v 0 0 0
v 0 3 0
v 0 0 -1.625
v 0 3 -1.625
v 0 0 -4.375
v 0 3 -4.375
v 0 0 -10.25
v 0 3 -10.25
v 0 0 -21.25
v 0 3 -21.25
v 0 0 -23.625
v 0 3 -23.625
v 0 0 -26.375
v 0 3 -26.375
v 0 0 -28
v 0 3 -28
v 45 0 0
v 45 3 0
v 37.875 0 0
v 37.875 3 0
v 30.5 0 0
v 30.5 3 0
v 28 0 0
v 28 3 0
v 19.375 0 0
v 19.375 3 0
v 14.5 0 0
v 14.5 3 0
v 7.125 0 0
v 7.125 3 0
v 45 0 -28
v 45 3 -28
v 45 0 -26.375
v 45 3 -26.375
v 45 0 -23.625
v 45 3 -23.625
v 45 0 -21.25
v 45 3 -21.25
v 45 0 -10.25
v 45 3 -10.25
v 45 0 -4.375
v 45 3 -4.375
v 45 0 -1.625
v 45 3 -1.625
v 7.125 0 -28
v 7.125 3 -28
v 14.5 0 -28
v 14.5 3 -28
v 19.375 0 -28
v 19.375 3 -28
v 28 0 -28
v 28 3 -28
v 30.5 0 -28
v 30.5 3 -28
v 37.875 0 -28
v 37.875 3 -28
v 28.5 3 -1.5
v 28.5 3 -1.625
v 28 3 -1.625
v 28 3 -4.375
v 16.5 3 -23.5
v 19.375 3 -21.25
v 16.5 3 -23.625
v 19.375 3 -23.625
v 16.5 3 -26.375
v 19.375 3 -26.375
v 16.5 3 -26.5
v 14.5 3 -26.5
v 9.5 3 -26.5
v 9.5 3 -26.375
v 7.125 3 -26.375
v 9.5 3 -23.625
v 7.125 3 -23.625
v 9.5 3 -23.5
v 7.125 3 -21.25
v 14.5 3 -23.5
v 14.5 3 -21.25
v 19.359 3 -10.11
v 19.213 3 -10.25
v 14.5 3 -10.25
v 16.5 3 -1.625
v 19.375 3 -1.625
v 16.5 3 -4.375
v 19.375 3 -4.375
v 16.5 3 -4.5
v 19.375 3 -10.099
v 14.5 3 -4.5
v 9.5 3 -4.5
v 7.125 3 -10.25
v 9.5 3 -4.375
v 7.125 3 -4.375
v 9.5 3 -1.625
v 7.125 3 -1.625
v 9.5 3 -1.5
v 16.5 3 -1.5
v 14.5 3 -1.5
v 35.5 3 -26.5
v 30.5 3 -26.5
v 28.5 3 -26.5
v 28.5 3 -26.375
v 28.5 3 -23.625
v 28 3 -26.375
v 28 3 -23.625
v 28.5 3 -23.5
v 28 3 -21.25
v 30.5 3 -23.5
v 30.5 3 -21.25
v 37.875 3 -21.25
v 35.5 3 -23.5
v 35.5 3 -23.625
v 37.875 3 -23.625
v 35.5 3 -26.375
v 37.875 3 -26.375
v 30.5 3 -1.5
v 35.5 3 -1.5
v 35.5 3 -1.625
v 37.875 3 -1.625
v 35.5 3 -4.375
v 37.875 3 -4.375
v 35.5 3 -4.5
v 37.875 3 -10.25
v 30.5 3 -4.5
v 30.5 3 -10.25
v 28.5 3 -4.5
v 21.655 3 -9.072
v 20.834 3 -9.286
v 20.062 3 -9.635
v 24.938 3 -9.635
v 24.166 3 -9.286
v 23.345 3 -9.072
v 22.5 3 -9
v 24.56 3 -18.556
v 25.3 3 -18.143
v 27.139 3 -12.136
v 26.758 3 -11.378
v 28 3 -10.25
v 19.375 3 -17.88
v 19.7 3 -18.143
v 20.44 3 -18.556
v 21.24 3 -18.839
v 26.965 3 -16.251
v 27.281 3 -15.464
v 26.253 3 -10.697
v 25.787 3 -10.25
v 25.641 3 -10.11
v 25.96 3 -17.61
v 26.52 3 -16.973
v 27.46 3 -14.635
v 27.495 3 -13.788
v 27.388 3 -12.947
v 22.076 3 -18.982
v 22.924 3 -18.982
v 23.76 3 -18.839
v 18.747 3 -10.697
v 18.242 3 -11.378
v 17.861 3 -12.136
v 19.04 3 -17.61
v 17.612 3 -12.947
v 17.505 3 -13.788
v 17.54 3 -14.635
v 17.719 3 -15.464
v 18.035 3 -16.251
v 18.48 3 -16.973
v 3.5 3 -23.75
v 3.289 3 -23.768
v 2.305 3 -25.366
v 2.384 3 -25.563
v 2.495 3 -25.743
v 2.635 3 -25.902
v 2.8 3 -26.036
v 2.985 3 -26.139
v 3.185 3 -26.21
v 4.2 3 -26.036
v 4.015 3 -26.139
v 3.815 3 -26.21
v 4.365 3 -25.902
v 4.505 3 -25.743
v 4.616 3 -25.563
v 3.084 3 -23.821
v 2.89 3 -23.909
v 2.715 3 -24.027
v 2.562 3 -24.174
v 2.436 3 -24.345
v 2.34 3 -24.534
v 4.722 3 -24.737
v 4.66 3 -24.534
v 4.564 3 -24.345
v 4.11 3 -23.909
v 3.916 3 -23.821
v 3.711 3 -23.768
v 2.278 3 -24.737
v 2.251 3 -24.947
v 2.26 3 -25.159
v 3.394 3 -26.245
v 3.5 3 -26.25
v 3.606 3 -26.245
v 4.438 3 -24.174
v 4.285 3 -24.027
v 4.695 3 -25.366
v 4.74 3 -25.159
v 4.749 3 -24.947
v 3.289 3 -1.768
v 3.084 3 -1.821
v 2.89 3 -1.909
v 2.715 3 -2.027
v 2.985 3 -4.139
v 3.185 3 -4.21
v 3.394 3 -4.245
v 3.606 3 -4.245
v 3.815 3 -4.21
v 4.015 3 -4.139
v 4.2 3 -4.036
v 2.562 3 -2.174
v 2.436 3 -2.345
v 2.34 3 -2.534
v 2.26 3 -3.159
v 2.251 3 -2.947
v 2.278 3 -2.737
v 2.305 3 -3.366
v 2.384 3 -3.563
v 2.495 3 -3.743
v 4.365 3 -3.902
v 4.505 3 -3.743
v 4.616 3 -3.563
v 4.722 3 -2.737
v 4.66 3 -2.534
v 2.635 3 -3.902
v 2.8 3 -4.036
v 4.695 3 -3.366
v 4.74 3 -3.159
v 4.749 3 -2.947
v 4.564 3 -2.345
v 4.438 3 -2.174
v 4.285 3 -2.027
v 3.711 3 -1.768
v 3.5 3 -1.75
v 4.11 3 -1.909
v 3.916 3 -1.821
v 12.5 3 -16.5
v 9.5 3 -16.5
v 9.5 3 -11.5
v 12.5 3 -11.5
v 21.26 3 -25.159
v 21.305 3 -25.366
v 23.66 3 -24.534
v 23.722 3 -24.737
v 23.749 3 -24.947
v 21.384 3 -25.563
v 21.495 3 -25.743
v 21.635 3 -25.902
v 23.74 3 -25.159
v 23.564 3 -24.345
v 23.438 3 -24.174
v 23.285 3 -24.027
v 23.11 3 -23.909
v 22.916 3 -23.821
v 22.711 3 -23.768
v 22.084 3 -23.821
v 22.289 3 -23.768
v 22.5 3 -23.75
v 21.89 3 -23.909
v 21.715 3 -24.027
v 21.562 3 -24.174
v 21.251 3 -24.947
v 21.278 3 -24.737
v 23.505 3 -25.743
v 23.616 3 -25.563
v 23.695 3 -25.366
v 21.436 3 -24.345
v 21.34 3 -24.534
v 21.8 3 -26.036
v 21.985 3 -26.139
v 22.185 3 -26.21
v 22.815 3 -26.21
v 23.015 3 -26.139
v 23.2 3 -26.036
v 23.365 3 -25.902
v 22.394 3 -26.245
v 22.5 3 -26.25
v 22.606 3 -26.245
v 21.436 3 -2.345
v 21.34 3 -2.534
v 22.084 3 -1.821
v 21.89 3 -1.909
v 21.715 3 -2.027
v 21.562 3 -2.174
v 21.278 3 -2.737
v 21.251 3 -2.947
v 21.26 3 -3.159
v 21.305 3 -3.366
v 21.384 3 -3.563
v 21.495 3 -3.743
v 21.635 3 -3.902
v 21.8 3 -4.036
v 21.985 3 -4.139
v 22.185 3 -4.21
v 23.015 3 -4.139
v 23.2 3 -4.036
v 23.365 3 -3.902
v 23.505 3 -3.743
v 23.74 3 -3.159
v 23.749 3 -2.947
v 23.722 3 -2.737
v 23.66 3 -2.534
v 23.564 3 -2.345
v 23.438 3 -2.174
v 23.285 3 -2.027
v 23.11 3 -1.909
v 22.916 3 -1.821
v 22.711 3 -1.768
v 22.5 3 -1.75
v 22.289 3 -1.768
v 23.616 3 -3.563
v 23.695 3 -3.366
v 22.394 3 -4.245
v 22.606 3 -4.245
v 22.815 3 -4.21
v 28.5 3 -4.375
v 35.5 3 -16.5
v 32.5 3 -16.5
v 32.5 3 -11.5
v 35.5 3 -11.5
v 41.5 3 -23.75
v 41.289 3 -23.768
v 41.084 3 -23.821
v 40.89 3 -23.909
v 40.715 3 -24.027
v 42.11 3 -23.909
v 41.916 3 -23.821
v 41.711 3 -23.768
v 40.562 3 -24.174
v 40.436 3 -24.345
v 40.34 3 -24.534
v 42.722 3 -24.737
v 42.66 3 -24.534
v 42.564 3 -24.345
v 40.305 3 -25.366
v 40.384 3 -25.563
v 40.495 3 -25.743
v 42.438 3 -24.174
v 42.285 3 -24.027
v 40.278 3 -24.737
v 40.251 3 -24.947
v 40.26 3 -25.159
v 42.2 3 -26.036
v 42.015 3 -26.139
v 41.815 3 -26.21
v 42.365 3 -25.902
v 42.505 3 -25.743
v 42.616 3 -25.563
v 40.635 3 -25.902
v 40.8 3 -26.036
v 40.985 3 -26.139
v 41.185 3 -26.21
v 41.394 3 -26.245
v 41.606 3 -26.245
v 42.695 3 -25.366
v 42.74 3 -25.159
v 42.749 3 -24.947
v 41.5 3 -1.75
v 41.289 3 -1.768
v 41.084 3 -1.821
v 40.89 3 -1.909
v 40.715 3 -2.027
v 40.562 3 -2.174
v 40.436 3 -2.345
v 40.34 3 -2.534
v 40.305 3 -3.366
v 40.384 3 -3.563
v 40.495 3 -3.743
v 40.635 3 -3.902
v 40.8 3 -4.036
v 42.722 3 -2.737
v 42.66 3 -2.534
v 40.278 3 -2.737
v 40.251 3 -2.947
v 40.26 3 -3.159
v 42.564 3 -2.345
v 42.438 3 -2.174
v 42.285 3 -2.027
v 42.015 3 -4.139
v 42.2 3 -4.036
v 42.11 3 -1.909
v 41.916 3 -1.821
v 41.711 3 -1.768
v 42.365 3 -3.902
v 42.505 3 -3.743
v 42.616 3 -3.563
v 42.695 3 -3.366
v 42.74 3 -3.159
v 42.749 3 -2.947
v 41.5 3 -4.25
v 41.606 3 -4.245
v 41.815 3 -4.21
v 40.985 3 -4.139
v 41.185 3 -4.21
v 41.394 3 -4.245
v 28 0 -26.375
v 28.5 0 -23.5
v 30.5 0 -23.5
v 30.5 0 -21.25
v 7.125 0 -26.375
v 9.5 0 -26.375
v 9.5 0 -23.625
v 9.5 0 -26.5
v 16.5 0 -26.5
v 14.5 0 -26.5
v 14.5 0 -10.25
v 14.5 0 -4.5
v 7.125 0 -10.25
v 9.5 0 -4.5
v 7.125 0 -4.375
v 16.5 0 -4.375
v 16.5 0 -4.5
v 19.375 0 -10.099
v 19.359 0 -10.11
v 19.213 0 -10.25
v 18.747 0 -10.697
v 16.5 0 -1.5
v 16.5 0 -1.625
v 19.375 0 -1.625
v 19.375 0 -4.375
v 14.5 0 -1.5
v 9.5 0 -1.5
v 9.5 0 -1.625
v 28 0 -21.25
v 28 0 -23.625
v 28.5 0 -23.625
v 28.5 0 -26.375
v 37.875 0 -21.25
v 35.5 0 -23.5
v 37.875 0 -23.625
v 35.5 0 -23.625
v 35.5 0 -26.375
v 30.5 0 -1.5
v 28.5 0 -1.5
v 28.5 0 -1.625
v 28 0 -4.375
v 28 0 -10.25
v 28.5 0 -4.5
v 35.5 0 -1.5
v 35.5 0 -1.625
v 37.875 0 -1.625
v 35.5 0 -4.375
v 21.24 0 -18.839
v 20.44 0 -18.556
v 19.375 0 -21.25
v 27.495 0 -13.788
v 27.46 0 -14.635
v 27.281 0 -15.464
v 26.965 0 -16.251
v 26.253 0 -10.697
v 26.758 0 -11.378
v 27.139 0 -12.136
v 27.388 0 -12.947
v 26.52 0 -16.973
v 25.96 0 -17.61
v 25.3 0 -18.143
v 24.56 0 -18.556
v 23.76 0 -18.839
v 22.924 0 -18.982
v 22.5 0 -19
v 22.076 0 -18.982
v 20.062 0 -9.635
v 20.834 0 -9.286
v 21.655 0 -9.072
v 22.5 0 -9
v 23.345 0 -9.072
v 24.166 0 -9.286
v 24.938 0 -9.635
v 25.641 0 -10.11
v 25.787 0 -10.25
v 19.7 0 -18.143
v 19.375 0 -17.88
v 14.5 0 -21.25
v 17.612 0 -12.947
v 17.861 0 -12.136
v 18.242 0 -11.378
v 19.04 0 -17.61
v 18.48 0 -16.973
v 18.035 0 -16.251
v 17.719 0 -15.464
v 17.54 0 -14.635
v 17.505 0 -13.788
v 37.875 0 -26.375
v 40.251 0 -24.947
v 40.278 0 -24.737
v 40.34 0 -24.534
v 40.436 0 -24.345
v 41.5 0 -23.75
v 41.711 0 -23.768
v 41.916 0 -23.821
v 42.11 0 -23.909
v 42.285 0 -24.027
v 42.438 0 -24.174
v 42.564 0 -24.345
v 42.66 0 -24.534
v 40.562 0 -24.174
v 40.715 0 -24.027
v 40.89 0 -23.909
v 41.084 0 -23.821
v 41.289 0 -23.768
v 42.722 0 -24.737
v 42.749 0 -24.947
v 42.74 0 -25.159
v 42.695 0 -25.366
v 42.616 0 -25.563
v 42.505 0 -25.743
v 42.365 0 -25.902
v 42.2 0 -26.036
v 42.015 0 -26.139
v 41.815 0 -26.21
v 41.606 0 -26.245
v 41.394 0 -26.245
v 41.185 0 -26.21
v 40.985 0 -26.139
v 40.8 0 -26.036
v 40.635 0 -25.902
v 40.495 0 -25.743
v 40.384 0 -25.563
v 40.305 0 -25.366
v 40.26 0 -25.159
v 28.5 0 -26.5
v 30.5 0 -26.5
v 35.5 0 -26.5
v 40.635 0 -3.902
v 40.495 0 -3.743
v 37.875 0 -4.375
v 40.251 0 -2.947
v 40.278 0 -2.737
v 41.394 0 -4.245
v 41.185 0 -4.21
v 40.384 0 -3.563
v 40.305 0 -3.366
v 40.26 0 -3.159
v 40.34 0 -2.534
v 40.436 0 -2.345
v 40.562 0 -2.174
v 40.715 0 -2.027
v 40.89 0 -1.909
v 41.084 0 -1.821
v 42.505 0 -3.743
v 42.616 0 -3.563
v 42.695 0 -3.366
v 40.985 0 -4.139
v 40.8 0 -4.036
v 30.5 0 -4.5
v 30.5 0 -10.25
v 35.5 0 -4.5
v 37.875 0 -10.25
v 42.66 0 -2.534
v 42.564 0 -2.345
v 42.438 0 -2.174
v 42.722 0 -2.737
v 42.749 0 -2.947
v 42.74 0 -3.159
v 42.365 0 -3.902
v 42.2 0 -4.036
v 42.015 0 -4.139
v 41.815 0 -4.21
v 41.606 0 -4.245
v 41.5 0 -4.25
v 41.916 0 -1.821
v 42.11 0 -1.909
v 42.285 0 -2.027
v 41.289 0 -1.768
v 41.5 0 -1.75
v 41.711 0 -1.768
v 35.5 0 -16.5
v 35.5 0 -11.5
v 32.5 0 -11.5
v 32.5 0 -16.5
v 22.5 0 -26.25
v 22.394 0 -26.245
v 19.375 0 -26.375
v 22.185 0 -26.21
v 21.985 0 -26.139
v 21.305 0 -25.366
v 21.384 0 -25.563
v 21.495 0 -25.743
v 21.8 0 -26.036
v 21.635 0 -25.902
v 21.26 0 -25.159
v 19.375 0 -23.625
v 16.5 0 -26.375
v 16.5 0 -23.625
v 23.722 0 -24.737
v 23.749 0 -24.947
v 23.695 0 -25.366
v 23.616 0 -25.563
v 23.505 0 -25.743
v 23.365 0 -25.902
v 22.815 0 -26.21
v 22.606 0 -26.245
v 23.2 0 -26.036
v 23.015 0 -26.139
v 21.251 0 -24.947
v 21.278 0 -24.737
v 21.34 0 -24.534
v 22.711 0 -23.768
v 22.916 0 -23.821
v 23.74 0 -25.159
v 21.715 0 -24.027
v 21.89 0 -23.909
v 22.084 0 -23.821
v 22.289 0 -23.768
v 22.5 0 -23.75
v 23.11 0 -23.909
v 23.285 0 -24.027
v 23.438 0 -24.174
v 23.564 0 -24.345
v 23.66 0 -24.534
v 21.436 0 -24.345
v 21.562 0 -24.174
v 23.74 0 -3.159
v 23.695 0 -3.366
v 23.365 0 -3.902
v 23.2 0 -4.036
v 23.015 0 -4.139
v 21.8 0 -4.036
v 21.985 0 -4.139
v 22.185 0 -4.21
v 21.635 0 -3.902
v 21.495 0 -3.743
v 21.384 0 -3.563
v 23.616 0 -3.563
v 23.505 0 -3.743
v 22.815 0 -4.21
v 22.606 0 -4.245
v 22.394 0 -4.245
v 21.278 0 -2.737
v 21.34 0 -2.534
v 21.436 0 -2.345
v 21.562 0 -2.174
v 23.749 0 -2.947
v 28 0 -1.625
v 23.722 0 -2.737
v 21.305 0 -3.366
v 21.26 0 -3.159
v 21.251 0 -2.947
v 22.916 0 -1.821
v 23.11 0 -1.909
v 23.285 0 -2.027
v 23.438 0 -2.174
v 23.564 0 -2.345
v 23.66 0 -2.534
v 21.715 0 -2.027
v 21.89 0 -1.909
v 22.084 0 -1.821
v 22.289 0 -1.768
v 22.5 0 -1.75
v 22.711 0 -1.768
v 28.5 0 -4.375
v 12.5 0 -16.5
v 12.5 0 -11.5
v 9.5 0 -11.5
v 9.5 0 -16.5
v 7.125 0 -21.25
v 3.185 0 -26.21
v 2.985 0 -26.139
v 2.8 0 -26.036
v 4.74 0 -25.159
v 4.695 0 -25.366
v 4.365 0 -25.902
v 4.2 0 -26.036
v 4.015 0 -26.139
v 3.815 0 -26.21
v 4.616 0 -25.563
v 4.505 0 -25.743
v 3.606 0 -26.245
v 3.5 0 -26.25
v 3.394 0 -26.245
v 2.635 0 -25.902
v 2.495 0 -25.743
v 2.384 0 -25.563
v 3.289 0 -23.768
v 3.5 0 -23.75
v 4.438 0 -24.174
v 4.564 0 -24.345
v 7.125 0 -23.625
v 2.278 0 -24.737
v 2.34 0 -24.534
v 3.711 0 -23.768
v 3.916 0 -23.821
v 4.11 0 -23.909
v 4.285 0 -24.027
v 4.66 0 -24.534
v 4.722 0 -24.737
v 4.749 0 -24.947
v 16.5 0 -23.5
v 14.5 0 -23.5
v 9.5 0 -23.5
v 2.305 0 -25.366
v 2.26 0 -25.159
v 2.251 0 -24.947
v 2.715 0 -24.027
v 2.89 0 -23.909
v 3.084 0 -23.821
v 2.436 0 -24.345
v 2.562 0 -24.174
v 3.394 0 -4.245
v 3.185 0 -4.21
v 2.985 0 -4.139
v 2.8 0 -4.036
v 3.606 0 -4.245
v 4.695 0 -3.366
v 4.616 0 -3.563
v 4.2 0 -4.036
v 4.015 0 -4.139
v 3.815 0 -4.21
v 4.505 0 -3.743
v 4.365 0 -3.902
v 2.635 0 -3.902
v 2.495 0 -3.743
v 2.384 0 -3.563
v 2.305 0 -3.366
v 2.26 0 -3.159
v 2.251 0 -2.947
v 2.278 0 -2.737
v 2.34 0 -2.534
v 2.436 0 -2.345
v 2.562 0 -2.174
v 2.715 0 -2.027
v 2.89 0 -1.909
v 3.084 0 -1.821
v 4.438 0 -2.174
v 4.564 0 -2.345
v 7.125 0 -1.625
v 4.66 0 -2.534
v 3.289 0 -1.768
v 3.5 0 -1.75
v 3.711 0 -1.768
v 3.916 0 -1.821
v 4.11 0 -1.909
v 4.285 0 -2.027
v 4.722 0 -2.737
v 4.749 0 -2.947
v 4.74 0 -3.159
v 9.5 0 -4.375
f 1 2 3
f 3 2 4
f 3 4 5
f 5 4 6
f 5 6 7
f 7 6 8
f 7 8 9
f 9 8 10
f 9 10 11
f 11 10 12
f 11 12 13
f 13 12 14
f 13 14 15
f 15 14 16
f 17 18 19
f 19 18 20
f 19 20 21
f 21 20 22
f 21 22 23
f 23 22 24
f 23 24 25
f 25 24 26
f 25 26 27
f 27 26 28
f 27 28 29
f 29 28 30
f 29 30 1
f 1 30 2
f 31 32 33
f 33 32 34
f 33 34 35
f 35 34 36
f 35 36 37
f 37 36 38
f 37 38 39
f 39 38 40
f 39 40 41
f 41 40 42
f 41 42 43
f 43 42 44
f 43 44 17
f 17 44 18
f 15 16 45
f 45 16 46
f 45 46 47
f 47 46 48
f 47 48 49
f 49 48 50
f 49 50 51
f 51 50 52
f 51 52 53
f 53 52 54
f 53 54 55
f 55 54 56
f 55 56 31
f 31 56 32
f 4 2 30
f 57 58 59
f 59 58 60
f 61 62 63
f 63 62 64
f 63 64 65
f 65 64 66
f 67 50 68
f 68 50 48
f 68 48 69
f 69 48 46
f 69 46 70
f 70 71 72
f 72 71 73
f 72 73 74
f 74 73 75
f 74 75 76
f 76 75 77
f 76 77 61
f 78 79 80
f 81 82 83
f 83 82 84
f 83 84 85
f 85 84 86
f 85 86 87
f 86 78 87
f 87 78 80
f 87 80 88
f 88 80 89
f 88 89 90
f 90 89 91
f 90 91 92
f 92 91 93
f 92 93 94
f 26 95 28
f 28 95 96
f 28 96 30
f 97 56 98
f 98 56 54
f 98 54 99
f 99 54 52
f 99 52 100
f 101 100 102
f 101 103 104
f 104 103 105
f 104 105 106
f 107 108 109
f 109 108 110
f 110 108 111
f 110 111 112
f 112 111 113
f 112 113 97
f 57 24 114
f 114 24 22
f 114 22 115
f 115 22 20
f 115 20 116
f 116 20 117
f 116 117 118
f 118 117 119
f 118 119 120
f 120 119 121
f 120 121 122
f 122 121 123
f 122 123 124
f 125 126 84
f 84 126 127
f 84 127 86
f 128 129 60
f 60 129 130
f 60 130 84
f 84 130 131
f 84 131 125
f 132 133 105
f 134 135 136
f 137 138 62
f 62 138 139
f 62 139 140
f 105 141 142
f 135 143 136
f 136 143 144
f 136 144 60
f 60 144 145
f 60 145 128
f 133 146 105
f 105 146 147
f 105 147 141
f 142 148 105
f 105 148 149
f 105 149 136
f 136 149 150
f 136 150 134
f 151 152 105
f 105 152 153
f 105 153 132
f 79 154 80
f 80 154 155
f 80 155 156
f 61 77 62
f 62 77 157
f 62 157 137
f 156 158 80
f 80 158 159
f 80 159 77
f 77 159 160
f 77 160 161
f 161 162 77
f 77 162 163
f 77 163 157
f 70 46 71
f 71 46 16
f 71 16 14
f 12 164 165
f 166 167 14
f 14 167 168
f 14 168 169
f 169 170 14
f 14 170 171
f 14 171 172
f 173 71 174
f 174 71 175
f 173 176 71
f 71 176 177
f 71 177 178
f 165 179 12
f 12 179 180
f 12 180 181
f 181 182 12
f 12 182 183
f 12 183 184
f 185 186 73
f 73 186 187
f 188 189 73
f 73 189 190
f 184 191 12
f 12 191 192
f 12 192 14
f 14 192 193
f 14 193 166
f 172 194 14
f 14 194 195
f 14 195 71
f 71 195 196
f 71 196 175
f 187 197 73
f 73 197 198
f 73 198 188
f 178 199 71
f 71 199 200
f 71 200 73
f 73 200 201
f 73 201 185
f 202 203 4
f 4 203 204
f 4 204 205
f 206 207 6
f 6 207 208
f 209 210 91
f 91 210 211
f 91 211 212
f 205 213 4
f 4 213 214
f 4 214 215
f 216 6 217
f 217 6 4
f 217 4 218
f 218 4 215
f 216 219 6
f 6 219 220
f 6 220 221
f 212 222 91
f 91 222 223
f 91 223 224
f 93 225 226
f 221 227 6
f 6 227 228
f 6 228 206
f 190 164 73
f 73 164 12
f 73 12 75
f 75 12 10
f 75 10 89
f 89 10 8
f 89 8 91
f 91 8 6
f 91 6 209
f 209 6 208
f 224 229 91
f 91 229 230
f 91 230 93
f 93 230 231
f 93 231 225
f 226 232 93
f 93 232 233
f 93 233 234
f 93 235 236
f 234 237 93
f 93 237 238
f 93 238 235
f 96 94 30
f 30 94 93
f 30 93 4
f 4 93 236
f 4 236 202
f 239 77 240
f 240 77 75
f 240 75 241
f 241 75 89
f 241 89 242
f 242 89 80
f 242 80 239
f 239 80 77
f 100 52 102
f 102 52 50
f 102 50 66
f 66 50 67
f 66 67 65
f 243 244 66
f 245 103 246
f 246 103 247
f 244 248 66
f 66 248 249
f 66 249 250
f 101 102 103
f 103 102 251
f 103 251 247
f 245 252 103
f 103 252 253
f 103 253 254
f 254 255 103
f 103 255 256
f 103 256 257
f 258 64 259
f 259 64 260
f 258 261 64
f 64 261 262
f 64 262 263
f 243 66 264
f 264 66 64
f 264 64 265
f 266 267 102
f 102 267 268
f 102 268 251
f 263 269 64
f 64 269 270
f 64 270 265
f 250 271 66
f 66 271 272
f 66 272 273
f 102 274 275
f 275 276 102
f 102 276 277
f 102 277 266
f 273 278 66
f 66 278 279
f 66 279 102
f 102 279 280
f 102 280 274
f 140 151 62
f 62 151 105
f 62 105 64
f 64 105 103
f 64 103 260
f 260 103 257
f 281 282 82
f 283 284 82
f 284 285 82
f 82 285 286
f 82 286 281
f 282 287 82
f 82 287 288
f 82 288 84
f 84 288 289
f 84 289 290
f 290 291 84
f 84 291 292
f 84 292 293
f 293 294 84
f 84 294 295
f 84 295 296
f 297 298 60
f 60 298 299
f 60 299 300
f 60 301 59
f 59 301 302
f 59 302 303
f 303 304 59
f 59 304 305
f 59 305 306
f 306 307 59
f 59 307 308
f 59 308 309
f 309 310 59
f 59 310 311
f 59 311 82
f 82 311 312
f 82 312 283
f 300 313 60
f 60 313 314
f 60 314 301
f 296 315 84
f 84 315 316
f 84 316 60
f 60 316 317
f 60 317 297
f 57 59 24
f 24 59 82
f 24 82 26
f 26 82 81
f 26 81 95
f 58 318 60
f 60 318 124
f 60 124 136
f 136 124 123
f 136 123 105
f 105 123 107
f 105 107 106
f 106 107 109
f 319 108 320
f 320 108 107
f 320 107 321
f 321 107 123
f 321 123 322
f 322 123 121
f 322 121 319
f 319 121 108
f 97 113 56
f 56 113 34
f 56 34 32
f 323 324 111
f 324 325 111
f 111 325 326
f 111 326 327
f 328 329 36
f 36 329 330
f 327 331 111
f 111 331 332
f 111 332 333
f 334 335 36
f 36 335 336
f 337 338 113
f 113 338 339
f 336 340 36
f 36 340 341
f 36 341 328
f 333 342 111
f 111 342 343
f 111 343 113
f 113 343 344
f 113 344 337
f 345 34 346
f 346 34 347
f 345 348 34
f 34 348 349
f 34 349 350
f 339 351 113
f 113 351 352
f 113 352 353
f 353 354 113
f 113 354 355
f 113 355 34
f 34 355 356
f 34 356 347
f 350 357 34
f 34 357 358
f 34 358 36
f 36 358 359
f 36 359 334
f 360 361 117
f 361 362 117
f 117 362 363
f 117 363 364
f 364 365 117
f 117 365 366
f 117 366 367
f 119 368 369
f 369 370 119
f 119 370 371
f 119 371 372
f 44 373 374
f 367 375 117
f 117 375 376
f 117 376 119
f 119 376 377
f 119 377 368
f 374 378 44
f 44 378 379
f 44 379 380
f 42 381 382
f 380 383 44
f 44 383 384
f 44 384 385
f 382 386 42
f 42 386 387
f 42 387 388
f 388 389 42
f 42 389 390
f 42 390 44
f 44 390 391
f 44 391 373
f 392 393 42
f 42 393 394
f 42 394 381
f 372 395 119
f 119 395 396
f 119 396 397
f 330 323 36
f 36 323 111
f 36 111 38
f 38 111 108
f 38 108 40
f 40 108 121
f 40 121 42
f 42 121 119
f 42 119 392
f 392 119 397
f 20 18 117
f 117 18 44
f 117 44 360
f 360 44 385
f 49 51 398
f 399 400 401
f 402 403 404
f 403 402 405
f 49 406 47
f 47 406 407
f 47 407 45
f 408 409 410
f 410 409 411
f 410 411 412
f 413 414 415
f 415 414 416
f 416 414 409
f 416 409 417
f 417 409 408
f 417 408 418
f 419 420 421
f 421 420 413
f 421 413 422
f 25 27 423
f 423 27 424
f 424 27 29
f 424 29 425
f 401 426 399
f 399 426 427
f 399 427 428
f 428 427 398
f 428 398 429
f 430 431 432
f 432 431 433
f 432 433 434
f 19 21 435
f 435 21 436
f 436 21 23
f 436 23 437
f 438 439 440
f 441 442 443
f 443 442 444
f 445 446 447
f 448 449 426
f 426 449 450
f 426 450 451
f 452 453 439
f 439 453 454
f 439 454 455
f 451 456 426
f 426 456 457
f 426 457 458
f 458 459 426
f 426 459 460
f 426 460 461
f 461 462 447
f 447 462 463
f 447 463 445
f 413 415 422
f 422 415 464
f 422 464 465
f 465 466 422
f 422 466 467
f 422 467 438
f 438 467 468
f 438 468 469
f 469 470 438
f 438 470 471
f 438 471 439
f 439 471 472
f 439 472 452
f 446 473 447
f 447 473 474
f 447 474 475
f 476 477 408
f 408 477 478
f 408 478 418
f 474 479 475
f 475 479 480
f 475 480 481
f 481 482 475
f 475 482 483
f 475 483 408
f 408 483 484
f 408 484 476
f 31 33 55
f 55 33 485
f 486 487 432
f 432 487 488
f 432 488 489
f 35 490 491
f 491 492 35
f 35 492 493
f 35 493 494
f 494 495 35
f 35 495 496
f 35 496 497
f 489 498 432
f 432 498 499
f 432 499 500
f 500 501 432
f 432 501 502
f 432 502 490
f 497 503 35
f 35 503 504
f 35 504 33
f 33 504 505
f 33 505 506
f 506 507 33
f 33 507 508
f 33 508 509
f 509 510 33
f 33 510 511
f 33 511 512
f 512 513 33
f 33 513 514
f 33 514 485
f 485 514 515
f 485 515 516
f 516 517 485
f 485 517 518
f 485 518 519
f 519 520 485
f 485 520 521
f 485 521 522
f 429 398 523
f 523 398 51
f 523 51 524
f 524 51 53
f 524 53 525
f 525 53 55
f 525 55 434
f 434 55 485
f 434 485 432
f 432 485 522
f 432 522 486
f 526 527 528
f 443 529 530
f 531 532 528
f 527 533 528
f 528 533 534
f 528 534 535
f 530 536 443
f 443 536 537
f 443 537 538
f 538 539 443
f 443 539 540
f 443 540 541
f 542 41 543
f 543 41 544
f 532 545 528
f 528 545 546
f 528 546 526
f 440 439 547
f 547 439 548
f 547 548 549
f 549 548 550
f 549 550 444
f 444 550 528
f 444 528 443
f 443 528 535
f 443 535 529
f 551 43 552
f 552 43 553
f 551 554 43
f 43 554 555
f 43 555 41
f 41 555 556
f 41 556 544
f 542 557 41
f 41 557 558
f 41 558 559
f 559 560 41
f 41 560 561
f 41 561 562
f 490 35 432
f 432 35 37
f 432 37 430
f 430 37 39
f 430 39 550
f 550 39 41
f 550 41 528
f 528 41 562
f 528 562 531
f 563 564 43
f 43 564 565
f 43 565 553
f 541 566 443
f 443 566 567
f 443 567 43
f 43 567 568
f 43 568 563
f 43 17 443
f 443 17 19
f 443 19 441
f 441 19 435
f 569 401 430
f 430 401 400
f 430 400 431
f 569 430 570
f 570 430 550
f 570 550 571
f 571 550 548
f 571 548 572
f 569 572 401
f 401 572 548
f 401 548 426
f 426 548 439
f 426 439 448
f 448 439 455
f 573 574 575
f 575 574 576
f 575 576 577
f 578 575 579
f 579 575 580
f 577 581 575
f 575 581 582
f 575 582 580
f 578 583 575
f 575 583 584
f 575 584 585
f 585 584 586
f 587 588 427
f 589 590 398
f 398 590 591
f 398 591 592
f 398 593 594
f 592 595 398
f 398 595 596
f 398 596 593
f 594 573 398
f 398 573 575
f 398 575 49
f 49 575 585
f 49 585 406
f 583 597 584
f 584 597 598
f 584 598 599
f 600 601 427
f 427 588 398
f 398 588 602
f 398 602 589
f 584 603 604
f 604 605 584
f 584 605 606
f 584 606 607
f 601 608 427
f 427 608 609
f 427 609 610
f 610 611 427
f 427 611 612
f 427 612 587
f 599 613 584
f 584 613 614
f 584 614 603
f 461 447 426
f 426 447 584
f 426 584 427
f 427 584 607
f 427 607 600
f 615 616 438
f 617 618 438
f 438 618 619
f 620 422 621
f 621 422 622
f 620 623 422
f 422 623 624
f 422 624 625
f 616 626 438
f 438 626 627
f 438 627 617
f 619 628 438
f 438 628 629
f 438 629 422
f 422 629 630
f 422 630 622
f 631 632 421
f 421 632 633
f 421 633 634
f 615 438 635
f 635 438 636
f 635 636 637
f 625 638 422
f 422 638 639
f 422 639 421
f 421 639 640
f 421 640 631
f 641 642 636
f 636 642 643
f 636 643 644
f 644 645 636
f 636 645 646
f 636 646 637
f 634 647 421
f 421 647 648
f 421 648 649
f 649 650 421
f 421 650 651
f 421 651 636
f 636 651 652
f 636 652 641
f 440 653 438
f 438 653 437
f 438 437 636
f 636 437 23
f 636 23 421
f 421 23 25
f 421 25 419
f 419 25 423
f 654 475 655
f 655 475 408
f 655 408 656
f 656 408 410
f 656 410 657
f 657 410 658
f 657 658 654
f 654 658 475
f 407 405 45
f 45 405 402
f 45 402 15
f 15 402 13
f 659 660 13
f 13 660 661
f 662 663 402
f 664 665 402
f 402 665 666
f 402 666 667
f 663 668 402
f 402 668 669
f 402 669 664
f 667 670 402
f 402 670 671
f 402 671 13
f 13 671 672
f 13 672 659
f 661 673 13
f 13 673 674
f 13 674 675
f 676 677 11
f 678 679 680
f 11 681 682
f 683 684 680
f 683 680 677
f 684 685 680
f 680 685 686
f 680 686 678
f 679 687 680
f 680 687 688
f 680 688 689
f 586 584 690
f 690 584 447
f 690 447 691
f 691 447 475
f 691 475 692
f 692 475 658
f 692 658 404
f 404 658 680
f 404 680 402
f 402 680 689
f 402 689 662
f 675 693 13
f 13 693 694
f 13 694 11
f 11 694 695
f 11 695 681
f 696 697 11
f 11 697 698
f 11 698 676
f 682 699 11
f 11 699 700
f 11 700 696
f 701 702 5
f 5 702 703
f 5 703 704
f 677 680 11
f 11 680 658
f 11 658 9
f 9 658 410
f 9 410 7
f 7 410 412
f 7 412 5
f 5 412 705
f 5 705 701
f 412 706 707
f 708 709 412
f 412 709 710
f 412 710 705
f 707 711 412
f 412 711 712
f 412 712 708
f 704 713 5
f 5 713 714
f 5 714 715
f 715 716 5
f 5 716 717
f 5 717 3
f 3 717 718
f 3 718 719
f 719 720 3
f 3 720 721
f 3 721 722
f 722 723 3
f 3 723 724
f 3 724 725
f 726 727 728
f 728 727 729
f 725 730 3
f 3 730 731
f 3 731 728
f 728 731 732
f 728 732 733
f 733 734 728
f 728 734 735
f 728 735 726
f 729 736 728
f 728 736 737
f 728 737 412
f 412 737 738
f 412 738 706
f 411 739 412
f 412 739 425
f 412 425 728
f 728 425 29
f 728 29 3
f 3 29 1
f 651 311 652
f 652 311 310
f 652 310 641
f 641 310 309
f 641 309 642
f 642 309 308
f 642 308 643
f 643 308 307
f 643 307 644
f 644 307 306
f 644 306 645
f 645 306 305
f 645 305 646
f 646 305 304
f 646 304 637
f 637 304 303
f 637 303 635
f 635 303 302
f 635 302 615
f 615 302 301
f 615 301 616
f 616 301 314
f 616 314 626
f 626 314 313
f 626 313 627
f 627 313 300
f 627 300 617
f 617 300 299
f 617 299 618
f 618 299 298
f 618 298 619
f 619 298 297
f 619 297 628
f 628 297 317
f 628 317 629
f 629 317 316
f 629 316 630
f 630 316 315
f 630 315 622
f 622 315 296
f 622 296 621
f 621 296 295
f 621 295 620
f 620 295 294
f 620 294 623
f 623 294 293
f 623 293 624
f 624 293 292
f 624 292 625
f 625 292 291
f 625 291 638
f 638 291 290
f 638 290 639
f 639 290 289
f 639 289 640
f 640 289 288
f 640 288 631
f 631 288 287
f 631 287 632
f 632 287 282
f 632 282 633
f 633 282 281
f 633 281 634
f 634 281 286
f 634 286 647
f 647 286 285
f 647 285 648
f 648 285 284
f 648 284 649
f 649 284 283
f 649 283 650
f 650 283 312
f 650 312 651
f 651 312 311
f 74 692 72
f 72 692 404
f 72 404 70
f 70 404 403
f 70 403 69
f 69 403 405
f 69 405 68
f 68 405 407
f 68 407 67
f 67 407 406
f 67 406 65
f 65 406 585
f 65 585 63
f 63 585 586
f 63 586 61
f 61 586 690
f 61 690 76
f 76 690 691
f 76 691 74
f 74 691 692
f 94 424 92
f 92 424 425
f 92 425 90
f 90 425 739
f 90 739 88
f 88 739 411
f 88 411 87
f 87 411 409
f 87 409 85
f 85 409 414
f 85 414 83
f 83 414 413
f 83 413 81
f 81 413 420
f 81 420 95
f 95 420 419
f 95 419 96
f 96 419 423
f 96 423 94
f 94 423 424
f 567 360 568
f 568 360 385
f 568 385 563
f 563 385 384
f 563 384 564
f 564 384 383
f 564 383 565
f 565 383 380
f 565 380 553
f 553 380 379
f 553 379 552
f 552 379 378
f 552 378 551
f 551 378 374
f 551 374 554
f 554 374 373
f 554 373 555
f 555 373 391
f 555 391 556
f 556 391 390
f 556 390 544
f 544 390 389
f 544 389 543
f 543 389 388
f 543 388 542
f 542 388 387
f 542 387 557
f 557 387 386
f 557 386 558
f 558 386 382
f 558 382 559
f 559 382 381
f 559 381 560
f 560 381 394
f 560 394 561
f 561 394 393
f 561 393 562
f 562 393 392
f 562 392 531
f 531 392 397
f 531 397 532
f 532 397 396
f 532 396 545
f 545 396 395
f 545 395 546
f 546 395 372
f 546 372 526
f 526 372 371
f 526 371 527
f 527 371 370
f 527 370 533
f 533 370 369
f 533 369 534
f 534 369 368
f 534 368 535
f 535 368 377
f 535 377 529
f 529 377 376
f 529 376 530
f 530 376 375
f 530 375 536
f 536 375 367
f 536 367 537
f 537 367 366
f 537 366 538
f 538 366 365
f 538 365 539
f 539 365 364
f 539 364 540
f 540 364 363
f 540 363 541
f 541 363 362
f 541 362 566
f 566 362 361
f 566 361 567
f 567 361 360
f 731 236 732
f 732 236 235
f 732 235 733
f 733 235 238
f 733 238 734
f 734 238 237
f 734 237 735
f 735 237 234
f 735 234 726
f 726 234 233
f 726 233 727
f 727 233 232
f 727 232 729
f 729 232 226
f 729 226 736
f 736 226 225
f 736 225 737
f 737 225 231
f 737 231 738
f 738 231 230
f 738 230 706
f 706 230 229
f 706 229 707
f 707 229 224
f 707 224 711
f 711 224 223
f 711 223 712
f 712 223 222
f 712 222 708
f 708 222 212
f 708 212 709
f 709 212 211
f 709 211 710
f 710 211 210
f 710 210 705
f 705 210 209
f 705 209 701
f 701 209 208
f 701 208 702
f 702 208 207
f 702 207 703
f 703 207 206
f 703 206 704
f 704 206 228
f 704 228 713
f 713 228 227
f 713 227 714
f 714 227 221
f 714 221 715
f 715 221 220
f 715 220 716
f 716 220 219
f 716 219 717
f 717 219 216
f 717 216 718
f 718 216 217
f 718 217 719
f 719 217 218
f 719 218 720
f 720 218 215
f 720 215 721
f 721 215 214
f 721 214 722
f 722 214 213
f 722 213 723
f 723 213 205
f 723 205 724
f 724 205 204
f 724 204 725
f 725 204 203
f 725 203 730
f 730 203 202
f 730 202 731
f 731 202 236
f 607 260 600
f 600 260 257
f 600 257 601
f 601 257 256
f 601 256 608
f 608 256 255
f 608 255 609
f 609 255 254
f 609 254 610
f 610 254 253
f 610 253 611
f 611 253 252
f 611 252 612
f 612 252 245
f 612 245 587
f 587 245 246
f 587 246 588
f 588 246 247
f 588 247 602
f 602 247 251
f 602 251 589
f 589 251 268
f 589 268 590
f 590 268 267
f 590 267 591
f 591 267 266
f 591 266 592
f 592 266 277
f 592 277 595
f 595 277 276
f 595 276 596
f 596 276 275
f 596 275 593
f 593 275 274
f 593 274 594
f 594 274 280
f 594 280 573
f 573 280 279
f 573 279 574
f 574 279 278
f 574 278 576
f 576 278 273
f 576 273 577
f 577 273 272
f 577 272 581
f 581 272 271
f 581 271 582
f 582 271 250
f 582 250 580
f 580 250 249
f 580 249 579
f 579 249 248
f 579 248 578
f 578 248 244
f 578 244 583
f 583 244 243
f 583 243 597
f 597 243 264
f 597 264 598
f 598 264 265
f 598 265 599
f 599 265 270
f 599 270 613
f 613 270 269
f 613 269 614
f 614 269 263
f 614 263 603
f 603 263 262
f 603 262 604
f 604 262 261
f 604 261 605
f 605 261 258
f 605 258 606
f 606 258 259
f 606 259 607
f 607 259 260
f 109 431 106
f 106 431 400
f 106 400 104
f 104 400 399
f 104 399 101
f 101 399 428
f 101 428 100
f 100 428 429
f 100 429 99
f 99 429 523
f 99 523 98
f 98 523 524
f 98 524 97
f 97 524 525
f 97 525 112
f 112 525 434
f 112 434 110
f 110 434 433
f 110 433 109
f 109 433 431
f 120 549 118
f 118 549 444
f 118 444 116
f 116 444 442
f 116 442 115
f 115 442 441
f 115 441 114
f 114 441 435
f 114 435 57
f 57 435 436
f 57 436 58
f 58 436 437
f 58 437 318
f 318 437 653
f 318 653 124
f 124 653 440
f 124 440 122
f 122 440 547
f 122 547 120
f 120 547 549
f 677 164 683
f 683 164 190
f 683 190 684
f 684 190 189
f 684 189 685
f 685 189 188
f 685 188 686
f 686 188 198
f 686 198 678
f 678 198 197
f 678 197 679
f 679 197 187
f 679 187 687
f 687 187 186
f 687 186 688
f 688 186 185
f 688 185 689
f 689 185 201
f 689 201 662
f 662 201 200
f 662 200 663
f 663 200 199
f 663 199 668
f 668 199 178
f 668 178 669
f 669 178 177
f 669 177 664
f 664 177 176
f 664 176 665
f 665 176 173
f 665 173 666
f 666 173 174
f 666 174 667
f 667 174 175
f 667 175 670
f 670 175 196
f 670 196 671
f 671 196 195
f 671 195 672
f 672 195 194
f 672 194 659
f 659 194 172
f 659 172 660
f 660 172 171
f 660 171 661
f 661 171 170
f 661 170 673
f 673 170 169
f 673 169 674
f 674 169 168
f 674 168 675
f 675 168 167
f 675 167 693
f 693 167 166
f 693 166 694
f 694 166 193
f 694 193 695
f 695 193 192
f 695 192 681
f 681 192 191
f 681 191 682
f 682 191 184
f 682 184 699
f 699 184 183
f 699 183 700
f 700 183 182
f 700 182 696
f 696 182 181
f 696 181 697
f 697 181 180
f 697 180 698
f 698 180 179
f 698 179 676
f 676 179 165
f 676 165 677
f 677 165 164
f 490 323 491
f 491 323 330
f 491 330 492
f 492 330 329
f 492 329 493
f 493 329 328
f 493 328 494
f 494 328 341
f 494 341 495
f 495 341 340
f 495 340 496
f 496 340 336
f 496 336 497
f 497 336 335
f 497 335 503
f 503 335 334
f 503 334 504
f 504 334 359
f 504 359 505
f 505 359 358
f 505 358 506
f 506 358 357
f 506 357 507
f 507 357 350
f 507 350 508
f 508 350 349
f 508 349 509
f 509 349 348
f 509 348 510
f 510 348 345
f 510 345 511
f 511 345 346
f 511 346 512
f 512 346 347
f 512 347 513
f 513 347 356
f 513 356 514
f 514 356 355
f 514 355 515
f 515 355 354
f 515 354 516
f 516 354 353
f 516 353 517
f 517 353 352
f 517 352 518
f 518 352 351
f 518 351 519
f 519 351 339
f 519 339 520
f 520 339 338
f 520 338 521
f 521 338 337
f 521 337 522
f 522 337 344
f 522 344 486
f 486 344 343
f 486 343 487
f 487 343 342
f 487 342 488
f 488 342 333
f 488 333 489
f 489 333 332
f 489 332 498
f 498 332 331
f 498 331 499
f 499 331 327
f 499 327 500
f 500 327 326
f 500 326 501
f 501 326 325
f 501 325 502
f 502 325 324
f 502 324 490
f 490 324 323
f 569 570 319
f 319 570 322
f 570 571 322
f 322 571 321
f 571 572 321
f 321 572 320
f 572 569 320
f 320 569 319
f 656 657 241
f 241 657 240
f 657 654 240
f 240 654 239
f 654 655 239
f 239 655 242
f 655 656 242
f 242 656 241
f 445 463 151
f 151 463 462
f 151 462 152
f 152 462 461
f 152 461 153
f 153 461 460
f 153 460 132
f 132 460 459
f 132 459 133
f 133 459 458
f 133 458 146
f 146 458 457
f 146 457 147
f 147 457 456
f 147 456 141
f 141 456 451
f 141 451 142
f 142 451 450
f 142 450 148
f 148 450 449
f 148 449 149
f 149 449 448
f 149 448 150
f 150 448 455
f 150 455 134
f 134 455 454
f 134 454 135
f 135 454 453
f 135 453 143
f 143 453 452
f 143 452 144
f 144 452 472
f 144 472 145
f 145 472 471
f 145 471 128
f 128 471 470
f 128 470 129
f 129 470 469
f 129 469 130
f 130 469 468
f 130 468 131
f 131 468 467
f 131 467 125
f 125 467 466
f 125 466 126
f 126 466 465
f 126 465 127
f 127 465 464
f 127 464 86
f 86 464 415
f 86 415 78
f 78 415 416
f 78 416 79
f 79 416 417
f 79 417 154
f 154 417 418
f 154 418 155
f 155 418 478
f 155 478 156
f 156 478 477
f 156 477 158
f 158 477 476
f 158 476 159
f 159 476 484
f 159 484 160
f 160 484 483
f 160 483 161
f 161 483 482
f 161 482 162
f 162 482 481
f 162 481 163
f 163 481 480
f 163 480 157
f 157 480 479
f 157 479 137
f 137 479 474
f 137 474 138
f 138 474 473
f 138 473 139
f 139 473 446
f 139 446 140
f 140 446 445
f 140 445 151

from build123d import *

# Parameters (mm, degrees)
SKETCH_1_W          = 45
SKETCH_1_H          = 28
EXTRUDE_1_DEPTH     = 3
SKETCH_2_R          = 1.25
SKETCH_2_W          = 7
SKETCH_2_H          = 3
CUT_EXTRUDE_1_DEPTH = 4
SKETCH_3_W          = 3
SKETCH_3_H          = 5
CUT_EXTRUDE_2_DEPTH = 4
SKETCH_4_R          = 5
CUT_EXTRUDE_3_DEPTH = 10


with BuildPart() as part:
    # 스케치1 → 보스-돌출1 (new body)
    with BuildSketch(Plane(origin=(0, 0, 0), x_dir=(1, 0, 0), z_dir=(0, 1, 0))):
        with Locations((22.5, 14)):
            Rectangle(SKETCH_1_W, SKETCH_1_H)
    extrude(amount=EXTRUDE_1_DEPTH)

    # 스케치2 → 컷-돌출1 (cut, through all)
    with BuildSketch(Plane(origin=(0, 3, 0), x_dir=(1, 0, 0), z_dir=(0, 1, 0))):
        with Locations((22.5, 3)):
            Circle(SKETCH_2_R)
        with Locations((22.5, 25)):
            Circle(SKETCH_2_R)
        with Locations((3.5, 3)):
            Circle(SKETCH_2_R)
        with Locations((41.5, 3)):
            Circle(SKETCH_2_R)
        with Locations((41.5, 25)):
            Circle(SKETCH_2_R)
        with Locations((3.5, 25)):
            Circle(SKETCH_2_R)
        with Locations((32, 3)):
            Rectangle(SKETCH_2_W, SKETCH_2_H)
        with Locations((13, 3)):
            Rectangle(SKETCH_2_W, SKETCH_2_H)
        with Locations((32, 25)):
            Rectangle(SKETCH_2_W, SKETCH_2_H)
        with Locations((13, 25)):
            Rectangle(SKETCH_2_W, SKETCH_2_H)
    extrude(amount=-CUT_EXTRUDE_1_DEPTH, mode=Mode.SUBTRACT)

    # 스케치3 → 컷-돌출2 (cut, through all)
    with BuildSketch(Plane(origin=(0, 3, 0), x_dir=(1, 0, 0), z_dir=(0, 1, 0))):
        with Locations((11, 14)):
            Rectangle(SKETCH_3_W, SKETCH_3_H)
        with Locations((34, 14)):
            Rectangle(SKETCH_3_W, SKETCH_3_H)
    extrude(amount=-CUT_EXTRUDE_2_DEPTH, mode=Mode.SUBTRACT)

    # 스케치4 → 컷-돌출3 (cut)
    with BuildSketch(Plane(origin=(0, 3, 0), x_dir=(1, 0, 0), z_dir=(0, 1, 0))):
        with Locations((22.5, 14)):
            Circle(SKETCH_4_R)
    extrude(amount=-CUT_EXTRUDE_3_DEPTH, mode=Mode.SUBTRACT)


solid = part.part
